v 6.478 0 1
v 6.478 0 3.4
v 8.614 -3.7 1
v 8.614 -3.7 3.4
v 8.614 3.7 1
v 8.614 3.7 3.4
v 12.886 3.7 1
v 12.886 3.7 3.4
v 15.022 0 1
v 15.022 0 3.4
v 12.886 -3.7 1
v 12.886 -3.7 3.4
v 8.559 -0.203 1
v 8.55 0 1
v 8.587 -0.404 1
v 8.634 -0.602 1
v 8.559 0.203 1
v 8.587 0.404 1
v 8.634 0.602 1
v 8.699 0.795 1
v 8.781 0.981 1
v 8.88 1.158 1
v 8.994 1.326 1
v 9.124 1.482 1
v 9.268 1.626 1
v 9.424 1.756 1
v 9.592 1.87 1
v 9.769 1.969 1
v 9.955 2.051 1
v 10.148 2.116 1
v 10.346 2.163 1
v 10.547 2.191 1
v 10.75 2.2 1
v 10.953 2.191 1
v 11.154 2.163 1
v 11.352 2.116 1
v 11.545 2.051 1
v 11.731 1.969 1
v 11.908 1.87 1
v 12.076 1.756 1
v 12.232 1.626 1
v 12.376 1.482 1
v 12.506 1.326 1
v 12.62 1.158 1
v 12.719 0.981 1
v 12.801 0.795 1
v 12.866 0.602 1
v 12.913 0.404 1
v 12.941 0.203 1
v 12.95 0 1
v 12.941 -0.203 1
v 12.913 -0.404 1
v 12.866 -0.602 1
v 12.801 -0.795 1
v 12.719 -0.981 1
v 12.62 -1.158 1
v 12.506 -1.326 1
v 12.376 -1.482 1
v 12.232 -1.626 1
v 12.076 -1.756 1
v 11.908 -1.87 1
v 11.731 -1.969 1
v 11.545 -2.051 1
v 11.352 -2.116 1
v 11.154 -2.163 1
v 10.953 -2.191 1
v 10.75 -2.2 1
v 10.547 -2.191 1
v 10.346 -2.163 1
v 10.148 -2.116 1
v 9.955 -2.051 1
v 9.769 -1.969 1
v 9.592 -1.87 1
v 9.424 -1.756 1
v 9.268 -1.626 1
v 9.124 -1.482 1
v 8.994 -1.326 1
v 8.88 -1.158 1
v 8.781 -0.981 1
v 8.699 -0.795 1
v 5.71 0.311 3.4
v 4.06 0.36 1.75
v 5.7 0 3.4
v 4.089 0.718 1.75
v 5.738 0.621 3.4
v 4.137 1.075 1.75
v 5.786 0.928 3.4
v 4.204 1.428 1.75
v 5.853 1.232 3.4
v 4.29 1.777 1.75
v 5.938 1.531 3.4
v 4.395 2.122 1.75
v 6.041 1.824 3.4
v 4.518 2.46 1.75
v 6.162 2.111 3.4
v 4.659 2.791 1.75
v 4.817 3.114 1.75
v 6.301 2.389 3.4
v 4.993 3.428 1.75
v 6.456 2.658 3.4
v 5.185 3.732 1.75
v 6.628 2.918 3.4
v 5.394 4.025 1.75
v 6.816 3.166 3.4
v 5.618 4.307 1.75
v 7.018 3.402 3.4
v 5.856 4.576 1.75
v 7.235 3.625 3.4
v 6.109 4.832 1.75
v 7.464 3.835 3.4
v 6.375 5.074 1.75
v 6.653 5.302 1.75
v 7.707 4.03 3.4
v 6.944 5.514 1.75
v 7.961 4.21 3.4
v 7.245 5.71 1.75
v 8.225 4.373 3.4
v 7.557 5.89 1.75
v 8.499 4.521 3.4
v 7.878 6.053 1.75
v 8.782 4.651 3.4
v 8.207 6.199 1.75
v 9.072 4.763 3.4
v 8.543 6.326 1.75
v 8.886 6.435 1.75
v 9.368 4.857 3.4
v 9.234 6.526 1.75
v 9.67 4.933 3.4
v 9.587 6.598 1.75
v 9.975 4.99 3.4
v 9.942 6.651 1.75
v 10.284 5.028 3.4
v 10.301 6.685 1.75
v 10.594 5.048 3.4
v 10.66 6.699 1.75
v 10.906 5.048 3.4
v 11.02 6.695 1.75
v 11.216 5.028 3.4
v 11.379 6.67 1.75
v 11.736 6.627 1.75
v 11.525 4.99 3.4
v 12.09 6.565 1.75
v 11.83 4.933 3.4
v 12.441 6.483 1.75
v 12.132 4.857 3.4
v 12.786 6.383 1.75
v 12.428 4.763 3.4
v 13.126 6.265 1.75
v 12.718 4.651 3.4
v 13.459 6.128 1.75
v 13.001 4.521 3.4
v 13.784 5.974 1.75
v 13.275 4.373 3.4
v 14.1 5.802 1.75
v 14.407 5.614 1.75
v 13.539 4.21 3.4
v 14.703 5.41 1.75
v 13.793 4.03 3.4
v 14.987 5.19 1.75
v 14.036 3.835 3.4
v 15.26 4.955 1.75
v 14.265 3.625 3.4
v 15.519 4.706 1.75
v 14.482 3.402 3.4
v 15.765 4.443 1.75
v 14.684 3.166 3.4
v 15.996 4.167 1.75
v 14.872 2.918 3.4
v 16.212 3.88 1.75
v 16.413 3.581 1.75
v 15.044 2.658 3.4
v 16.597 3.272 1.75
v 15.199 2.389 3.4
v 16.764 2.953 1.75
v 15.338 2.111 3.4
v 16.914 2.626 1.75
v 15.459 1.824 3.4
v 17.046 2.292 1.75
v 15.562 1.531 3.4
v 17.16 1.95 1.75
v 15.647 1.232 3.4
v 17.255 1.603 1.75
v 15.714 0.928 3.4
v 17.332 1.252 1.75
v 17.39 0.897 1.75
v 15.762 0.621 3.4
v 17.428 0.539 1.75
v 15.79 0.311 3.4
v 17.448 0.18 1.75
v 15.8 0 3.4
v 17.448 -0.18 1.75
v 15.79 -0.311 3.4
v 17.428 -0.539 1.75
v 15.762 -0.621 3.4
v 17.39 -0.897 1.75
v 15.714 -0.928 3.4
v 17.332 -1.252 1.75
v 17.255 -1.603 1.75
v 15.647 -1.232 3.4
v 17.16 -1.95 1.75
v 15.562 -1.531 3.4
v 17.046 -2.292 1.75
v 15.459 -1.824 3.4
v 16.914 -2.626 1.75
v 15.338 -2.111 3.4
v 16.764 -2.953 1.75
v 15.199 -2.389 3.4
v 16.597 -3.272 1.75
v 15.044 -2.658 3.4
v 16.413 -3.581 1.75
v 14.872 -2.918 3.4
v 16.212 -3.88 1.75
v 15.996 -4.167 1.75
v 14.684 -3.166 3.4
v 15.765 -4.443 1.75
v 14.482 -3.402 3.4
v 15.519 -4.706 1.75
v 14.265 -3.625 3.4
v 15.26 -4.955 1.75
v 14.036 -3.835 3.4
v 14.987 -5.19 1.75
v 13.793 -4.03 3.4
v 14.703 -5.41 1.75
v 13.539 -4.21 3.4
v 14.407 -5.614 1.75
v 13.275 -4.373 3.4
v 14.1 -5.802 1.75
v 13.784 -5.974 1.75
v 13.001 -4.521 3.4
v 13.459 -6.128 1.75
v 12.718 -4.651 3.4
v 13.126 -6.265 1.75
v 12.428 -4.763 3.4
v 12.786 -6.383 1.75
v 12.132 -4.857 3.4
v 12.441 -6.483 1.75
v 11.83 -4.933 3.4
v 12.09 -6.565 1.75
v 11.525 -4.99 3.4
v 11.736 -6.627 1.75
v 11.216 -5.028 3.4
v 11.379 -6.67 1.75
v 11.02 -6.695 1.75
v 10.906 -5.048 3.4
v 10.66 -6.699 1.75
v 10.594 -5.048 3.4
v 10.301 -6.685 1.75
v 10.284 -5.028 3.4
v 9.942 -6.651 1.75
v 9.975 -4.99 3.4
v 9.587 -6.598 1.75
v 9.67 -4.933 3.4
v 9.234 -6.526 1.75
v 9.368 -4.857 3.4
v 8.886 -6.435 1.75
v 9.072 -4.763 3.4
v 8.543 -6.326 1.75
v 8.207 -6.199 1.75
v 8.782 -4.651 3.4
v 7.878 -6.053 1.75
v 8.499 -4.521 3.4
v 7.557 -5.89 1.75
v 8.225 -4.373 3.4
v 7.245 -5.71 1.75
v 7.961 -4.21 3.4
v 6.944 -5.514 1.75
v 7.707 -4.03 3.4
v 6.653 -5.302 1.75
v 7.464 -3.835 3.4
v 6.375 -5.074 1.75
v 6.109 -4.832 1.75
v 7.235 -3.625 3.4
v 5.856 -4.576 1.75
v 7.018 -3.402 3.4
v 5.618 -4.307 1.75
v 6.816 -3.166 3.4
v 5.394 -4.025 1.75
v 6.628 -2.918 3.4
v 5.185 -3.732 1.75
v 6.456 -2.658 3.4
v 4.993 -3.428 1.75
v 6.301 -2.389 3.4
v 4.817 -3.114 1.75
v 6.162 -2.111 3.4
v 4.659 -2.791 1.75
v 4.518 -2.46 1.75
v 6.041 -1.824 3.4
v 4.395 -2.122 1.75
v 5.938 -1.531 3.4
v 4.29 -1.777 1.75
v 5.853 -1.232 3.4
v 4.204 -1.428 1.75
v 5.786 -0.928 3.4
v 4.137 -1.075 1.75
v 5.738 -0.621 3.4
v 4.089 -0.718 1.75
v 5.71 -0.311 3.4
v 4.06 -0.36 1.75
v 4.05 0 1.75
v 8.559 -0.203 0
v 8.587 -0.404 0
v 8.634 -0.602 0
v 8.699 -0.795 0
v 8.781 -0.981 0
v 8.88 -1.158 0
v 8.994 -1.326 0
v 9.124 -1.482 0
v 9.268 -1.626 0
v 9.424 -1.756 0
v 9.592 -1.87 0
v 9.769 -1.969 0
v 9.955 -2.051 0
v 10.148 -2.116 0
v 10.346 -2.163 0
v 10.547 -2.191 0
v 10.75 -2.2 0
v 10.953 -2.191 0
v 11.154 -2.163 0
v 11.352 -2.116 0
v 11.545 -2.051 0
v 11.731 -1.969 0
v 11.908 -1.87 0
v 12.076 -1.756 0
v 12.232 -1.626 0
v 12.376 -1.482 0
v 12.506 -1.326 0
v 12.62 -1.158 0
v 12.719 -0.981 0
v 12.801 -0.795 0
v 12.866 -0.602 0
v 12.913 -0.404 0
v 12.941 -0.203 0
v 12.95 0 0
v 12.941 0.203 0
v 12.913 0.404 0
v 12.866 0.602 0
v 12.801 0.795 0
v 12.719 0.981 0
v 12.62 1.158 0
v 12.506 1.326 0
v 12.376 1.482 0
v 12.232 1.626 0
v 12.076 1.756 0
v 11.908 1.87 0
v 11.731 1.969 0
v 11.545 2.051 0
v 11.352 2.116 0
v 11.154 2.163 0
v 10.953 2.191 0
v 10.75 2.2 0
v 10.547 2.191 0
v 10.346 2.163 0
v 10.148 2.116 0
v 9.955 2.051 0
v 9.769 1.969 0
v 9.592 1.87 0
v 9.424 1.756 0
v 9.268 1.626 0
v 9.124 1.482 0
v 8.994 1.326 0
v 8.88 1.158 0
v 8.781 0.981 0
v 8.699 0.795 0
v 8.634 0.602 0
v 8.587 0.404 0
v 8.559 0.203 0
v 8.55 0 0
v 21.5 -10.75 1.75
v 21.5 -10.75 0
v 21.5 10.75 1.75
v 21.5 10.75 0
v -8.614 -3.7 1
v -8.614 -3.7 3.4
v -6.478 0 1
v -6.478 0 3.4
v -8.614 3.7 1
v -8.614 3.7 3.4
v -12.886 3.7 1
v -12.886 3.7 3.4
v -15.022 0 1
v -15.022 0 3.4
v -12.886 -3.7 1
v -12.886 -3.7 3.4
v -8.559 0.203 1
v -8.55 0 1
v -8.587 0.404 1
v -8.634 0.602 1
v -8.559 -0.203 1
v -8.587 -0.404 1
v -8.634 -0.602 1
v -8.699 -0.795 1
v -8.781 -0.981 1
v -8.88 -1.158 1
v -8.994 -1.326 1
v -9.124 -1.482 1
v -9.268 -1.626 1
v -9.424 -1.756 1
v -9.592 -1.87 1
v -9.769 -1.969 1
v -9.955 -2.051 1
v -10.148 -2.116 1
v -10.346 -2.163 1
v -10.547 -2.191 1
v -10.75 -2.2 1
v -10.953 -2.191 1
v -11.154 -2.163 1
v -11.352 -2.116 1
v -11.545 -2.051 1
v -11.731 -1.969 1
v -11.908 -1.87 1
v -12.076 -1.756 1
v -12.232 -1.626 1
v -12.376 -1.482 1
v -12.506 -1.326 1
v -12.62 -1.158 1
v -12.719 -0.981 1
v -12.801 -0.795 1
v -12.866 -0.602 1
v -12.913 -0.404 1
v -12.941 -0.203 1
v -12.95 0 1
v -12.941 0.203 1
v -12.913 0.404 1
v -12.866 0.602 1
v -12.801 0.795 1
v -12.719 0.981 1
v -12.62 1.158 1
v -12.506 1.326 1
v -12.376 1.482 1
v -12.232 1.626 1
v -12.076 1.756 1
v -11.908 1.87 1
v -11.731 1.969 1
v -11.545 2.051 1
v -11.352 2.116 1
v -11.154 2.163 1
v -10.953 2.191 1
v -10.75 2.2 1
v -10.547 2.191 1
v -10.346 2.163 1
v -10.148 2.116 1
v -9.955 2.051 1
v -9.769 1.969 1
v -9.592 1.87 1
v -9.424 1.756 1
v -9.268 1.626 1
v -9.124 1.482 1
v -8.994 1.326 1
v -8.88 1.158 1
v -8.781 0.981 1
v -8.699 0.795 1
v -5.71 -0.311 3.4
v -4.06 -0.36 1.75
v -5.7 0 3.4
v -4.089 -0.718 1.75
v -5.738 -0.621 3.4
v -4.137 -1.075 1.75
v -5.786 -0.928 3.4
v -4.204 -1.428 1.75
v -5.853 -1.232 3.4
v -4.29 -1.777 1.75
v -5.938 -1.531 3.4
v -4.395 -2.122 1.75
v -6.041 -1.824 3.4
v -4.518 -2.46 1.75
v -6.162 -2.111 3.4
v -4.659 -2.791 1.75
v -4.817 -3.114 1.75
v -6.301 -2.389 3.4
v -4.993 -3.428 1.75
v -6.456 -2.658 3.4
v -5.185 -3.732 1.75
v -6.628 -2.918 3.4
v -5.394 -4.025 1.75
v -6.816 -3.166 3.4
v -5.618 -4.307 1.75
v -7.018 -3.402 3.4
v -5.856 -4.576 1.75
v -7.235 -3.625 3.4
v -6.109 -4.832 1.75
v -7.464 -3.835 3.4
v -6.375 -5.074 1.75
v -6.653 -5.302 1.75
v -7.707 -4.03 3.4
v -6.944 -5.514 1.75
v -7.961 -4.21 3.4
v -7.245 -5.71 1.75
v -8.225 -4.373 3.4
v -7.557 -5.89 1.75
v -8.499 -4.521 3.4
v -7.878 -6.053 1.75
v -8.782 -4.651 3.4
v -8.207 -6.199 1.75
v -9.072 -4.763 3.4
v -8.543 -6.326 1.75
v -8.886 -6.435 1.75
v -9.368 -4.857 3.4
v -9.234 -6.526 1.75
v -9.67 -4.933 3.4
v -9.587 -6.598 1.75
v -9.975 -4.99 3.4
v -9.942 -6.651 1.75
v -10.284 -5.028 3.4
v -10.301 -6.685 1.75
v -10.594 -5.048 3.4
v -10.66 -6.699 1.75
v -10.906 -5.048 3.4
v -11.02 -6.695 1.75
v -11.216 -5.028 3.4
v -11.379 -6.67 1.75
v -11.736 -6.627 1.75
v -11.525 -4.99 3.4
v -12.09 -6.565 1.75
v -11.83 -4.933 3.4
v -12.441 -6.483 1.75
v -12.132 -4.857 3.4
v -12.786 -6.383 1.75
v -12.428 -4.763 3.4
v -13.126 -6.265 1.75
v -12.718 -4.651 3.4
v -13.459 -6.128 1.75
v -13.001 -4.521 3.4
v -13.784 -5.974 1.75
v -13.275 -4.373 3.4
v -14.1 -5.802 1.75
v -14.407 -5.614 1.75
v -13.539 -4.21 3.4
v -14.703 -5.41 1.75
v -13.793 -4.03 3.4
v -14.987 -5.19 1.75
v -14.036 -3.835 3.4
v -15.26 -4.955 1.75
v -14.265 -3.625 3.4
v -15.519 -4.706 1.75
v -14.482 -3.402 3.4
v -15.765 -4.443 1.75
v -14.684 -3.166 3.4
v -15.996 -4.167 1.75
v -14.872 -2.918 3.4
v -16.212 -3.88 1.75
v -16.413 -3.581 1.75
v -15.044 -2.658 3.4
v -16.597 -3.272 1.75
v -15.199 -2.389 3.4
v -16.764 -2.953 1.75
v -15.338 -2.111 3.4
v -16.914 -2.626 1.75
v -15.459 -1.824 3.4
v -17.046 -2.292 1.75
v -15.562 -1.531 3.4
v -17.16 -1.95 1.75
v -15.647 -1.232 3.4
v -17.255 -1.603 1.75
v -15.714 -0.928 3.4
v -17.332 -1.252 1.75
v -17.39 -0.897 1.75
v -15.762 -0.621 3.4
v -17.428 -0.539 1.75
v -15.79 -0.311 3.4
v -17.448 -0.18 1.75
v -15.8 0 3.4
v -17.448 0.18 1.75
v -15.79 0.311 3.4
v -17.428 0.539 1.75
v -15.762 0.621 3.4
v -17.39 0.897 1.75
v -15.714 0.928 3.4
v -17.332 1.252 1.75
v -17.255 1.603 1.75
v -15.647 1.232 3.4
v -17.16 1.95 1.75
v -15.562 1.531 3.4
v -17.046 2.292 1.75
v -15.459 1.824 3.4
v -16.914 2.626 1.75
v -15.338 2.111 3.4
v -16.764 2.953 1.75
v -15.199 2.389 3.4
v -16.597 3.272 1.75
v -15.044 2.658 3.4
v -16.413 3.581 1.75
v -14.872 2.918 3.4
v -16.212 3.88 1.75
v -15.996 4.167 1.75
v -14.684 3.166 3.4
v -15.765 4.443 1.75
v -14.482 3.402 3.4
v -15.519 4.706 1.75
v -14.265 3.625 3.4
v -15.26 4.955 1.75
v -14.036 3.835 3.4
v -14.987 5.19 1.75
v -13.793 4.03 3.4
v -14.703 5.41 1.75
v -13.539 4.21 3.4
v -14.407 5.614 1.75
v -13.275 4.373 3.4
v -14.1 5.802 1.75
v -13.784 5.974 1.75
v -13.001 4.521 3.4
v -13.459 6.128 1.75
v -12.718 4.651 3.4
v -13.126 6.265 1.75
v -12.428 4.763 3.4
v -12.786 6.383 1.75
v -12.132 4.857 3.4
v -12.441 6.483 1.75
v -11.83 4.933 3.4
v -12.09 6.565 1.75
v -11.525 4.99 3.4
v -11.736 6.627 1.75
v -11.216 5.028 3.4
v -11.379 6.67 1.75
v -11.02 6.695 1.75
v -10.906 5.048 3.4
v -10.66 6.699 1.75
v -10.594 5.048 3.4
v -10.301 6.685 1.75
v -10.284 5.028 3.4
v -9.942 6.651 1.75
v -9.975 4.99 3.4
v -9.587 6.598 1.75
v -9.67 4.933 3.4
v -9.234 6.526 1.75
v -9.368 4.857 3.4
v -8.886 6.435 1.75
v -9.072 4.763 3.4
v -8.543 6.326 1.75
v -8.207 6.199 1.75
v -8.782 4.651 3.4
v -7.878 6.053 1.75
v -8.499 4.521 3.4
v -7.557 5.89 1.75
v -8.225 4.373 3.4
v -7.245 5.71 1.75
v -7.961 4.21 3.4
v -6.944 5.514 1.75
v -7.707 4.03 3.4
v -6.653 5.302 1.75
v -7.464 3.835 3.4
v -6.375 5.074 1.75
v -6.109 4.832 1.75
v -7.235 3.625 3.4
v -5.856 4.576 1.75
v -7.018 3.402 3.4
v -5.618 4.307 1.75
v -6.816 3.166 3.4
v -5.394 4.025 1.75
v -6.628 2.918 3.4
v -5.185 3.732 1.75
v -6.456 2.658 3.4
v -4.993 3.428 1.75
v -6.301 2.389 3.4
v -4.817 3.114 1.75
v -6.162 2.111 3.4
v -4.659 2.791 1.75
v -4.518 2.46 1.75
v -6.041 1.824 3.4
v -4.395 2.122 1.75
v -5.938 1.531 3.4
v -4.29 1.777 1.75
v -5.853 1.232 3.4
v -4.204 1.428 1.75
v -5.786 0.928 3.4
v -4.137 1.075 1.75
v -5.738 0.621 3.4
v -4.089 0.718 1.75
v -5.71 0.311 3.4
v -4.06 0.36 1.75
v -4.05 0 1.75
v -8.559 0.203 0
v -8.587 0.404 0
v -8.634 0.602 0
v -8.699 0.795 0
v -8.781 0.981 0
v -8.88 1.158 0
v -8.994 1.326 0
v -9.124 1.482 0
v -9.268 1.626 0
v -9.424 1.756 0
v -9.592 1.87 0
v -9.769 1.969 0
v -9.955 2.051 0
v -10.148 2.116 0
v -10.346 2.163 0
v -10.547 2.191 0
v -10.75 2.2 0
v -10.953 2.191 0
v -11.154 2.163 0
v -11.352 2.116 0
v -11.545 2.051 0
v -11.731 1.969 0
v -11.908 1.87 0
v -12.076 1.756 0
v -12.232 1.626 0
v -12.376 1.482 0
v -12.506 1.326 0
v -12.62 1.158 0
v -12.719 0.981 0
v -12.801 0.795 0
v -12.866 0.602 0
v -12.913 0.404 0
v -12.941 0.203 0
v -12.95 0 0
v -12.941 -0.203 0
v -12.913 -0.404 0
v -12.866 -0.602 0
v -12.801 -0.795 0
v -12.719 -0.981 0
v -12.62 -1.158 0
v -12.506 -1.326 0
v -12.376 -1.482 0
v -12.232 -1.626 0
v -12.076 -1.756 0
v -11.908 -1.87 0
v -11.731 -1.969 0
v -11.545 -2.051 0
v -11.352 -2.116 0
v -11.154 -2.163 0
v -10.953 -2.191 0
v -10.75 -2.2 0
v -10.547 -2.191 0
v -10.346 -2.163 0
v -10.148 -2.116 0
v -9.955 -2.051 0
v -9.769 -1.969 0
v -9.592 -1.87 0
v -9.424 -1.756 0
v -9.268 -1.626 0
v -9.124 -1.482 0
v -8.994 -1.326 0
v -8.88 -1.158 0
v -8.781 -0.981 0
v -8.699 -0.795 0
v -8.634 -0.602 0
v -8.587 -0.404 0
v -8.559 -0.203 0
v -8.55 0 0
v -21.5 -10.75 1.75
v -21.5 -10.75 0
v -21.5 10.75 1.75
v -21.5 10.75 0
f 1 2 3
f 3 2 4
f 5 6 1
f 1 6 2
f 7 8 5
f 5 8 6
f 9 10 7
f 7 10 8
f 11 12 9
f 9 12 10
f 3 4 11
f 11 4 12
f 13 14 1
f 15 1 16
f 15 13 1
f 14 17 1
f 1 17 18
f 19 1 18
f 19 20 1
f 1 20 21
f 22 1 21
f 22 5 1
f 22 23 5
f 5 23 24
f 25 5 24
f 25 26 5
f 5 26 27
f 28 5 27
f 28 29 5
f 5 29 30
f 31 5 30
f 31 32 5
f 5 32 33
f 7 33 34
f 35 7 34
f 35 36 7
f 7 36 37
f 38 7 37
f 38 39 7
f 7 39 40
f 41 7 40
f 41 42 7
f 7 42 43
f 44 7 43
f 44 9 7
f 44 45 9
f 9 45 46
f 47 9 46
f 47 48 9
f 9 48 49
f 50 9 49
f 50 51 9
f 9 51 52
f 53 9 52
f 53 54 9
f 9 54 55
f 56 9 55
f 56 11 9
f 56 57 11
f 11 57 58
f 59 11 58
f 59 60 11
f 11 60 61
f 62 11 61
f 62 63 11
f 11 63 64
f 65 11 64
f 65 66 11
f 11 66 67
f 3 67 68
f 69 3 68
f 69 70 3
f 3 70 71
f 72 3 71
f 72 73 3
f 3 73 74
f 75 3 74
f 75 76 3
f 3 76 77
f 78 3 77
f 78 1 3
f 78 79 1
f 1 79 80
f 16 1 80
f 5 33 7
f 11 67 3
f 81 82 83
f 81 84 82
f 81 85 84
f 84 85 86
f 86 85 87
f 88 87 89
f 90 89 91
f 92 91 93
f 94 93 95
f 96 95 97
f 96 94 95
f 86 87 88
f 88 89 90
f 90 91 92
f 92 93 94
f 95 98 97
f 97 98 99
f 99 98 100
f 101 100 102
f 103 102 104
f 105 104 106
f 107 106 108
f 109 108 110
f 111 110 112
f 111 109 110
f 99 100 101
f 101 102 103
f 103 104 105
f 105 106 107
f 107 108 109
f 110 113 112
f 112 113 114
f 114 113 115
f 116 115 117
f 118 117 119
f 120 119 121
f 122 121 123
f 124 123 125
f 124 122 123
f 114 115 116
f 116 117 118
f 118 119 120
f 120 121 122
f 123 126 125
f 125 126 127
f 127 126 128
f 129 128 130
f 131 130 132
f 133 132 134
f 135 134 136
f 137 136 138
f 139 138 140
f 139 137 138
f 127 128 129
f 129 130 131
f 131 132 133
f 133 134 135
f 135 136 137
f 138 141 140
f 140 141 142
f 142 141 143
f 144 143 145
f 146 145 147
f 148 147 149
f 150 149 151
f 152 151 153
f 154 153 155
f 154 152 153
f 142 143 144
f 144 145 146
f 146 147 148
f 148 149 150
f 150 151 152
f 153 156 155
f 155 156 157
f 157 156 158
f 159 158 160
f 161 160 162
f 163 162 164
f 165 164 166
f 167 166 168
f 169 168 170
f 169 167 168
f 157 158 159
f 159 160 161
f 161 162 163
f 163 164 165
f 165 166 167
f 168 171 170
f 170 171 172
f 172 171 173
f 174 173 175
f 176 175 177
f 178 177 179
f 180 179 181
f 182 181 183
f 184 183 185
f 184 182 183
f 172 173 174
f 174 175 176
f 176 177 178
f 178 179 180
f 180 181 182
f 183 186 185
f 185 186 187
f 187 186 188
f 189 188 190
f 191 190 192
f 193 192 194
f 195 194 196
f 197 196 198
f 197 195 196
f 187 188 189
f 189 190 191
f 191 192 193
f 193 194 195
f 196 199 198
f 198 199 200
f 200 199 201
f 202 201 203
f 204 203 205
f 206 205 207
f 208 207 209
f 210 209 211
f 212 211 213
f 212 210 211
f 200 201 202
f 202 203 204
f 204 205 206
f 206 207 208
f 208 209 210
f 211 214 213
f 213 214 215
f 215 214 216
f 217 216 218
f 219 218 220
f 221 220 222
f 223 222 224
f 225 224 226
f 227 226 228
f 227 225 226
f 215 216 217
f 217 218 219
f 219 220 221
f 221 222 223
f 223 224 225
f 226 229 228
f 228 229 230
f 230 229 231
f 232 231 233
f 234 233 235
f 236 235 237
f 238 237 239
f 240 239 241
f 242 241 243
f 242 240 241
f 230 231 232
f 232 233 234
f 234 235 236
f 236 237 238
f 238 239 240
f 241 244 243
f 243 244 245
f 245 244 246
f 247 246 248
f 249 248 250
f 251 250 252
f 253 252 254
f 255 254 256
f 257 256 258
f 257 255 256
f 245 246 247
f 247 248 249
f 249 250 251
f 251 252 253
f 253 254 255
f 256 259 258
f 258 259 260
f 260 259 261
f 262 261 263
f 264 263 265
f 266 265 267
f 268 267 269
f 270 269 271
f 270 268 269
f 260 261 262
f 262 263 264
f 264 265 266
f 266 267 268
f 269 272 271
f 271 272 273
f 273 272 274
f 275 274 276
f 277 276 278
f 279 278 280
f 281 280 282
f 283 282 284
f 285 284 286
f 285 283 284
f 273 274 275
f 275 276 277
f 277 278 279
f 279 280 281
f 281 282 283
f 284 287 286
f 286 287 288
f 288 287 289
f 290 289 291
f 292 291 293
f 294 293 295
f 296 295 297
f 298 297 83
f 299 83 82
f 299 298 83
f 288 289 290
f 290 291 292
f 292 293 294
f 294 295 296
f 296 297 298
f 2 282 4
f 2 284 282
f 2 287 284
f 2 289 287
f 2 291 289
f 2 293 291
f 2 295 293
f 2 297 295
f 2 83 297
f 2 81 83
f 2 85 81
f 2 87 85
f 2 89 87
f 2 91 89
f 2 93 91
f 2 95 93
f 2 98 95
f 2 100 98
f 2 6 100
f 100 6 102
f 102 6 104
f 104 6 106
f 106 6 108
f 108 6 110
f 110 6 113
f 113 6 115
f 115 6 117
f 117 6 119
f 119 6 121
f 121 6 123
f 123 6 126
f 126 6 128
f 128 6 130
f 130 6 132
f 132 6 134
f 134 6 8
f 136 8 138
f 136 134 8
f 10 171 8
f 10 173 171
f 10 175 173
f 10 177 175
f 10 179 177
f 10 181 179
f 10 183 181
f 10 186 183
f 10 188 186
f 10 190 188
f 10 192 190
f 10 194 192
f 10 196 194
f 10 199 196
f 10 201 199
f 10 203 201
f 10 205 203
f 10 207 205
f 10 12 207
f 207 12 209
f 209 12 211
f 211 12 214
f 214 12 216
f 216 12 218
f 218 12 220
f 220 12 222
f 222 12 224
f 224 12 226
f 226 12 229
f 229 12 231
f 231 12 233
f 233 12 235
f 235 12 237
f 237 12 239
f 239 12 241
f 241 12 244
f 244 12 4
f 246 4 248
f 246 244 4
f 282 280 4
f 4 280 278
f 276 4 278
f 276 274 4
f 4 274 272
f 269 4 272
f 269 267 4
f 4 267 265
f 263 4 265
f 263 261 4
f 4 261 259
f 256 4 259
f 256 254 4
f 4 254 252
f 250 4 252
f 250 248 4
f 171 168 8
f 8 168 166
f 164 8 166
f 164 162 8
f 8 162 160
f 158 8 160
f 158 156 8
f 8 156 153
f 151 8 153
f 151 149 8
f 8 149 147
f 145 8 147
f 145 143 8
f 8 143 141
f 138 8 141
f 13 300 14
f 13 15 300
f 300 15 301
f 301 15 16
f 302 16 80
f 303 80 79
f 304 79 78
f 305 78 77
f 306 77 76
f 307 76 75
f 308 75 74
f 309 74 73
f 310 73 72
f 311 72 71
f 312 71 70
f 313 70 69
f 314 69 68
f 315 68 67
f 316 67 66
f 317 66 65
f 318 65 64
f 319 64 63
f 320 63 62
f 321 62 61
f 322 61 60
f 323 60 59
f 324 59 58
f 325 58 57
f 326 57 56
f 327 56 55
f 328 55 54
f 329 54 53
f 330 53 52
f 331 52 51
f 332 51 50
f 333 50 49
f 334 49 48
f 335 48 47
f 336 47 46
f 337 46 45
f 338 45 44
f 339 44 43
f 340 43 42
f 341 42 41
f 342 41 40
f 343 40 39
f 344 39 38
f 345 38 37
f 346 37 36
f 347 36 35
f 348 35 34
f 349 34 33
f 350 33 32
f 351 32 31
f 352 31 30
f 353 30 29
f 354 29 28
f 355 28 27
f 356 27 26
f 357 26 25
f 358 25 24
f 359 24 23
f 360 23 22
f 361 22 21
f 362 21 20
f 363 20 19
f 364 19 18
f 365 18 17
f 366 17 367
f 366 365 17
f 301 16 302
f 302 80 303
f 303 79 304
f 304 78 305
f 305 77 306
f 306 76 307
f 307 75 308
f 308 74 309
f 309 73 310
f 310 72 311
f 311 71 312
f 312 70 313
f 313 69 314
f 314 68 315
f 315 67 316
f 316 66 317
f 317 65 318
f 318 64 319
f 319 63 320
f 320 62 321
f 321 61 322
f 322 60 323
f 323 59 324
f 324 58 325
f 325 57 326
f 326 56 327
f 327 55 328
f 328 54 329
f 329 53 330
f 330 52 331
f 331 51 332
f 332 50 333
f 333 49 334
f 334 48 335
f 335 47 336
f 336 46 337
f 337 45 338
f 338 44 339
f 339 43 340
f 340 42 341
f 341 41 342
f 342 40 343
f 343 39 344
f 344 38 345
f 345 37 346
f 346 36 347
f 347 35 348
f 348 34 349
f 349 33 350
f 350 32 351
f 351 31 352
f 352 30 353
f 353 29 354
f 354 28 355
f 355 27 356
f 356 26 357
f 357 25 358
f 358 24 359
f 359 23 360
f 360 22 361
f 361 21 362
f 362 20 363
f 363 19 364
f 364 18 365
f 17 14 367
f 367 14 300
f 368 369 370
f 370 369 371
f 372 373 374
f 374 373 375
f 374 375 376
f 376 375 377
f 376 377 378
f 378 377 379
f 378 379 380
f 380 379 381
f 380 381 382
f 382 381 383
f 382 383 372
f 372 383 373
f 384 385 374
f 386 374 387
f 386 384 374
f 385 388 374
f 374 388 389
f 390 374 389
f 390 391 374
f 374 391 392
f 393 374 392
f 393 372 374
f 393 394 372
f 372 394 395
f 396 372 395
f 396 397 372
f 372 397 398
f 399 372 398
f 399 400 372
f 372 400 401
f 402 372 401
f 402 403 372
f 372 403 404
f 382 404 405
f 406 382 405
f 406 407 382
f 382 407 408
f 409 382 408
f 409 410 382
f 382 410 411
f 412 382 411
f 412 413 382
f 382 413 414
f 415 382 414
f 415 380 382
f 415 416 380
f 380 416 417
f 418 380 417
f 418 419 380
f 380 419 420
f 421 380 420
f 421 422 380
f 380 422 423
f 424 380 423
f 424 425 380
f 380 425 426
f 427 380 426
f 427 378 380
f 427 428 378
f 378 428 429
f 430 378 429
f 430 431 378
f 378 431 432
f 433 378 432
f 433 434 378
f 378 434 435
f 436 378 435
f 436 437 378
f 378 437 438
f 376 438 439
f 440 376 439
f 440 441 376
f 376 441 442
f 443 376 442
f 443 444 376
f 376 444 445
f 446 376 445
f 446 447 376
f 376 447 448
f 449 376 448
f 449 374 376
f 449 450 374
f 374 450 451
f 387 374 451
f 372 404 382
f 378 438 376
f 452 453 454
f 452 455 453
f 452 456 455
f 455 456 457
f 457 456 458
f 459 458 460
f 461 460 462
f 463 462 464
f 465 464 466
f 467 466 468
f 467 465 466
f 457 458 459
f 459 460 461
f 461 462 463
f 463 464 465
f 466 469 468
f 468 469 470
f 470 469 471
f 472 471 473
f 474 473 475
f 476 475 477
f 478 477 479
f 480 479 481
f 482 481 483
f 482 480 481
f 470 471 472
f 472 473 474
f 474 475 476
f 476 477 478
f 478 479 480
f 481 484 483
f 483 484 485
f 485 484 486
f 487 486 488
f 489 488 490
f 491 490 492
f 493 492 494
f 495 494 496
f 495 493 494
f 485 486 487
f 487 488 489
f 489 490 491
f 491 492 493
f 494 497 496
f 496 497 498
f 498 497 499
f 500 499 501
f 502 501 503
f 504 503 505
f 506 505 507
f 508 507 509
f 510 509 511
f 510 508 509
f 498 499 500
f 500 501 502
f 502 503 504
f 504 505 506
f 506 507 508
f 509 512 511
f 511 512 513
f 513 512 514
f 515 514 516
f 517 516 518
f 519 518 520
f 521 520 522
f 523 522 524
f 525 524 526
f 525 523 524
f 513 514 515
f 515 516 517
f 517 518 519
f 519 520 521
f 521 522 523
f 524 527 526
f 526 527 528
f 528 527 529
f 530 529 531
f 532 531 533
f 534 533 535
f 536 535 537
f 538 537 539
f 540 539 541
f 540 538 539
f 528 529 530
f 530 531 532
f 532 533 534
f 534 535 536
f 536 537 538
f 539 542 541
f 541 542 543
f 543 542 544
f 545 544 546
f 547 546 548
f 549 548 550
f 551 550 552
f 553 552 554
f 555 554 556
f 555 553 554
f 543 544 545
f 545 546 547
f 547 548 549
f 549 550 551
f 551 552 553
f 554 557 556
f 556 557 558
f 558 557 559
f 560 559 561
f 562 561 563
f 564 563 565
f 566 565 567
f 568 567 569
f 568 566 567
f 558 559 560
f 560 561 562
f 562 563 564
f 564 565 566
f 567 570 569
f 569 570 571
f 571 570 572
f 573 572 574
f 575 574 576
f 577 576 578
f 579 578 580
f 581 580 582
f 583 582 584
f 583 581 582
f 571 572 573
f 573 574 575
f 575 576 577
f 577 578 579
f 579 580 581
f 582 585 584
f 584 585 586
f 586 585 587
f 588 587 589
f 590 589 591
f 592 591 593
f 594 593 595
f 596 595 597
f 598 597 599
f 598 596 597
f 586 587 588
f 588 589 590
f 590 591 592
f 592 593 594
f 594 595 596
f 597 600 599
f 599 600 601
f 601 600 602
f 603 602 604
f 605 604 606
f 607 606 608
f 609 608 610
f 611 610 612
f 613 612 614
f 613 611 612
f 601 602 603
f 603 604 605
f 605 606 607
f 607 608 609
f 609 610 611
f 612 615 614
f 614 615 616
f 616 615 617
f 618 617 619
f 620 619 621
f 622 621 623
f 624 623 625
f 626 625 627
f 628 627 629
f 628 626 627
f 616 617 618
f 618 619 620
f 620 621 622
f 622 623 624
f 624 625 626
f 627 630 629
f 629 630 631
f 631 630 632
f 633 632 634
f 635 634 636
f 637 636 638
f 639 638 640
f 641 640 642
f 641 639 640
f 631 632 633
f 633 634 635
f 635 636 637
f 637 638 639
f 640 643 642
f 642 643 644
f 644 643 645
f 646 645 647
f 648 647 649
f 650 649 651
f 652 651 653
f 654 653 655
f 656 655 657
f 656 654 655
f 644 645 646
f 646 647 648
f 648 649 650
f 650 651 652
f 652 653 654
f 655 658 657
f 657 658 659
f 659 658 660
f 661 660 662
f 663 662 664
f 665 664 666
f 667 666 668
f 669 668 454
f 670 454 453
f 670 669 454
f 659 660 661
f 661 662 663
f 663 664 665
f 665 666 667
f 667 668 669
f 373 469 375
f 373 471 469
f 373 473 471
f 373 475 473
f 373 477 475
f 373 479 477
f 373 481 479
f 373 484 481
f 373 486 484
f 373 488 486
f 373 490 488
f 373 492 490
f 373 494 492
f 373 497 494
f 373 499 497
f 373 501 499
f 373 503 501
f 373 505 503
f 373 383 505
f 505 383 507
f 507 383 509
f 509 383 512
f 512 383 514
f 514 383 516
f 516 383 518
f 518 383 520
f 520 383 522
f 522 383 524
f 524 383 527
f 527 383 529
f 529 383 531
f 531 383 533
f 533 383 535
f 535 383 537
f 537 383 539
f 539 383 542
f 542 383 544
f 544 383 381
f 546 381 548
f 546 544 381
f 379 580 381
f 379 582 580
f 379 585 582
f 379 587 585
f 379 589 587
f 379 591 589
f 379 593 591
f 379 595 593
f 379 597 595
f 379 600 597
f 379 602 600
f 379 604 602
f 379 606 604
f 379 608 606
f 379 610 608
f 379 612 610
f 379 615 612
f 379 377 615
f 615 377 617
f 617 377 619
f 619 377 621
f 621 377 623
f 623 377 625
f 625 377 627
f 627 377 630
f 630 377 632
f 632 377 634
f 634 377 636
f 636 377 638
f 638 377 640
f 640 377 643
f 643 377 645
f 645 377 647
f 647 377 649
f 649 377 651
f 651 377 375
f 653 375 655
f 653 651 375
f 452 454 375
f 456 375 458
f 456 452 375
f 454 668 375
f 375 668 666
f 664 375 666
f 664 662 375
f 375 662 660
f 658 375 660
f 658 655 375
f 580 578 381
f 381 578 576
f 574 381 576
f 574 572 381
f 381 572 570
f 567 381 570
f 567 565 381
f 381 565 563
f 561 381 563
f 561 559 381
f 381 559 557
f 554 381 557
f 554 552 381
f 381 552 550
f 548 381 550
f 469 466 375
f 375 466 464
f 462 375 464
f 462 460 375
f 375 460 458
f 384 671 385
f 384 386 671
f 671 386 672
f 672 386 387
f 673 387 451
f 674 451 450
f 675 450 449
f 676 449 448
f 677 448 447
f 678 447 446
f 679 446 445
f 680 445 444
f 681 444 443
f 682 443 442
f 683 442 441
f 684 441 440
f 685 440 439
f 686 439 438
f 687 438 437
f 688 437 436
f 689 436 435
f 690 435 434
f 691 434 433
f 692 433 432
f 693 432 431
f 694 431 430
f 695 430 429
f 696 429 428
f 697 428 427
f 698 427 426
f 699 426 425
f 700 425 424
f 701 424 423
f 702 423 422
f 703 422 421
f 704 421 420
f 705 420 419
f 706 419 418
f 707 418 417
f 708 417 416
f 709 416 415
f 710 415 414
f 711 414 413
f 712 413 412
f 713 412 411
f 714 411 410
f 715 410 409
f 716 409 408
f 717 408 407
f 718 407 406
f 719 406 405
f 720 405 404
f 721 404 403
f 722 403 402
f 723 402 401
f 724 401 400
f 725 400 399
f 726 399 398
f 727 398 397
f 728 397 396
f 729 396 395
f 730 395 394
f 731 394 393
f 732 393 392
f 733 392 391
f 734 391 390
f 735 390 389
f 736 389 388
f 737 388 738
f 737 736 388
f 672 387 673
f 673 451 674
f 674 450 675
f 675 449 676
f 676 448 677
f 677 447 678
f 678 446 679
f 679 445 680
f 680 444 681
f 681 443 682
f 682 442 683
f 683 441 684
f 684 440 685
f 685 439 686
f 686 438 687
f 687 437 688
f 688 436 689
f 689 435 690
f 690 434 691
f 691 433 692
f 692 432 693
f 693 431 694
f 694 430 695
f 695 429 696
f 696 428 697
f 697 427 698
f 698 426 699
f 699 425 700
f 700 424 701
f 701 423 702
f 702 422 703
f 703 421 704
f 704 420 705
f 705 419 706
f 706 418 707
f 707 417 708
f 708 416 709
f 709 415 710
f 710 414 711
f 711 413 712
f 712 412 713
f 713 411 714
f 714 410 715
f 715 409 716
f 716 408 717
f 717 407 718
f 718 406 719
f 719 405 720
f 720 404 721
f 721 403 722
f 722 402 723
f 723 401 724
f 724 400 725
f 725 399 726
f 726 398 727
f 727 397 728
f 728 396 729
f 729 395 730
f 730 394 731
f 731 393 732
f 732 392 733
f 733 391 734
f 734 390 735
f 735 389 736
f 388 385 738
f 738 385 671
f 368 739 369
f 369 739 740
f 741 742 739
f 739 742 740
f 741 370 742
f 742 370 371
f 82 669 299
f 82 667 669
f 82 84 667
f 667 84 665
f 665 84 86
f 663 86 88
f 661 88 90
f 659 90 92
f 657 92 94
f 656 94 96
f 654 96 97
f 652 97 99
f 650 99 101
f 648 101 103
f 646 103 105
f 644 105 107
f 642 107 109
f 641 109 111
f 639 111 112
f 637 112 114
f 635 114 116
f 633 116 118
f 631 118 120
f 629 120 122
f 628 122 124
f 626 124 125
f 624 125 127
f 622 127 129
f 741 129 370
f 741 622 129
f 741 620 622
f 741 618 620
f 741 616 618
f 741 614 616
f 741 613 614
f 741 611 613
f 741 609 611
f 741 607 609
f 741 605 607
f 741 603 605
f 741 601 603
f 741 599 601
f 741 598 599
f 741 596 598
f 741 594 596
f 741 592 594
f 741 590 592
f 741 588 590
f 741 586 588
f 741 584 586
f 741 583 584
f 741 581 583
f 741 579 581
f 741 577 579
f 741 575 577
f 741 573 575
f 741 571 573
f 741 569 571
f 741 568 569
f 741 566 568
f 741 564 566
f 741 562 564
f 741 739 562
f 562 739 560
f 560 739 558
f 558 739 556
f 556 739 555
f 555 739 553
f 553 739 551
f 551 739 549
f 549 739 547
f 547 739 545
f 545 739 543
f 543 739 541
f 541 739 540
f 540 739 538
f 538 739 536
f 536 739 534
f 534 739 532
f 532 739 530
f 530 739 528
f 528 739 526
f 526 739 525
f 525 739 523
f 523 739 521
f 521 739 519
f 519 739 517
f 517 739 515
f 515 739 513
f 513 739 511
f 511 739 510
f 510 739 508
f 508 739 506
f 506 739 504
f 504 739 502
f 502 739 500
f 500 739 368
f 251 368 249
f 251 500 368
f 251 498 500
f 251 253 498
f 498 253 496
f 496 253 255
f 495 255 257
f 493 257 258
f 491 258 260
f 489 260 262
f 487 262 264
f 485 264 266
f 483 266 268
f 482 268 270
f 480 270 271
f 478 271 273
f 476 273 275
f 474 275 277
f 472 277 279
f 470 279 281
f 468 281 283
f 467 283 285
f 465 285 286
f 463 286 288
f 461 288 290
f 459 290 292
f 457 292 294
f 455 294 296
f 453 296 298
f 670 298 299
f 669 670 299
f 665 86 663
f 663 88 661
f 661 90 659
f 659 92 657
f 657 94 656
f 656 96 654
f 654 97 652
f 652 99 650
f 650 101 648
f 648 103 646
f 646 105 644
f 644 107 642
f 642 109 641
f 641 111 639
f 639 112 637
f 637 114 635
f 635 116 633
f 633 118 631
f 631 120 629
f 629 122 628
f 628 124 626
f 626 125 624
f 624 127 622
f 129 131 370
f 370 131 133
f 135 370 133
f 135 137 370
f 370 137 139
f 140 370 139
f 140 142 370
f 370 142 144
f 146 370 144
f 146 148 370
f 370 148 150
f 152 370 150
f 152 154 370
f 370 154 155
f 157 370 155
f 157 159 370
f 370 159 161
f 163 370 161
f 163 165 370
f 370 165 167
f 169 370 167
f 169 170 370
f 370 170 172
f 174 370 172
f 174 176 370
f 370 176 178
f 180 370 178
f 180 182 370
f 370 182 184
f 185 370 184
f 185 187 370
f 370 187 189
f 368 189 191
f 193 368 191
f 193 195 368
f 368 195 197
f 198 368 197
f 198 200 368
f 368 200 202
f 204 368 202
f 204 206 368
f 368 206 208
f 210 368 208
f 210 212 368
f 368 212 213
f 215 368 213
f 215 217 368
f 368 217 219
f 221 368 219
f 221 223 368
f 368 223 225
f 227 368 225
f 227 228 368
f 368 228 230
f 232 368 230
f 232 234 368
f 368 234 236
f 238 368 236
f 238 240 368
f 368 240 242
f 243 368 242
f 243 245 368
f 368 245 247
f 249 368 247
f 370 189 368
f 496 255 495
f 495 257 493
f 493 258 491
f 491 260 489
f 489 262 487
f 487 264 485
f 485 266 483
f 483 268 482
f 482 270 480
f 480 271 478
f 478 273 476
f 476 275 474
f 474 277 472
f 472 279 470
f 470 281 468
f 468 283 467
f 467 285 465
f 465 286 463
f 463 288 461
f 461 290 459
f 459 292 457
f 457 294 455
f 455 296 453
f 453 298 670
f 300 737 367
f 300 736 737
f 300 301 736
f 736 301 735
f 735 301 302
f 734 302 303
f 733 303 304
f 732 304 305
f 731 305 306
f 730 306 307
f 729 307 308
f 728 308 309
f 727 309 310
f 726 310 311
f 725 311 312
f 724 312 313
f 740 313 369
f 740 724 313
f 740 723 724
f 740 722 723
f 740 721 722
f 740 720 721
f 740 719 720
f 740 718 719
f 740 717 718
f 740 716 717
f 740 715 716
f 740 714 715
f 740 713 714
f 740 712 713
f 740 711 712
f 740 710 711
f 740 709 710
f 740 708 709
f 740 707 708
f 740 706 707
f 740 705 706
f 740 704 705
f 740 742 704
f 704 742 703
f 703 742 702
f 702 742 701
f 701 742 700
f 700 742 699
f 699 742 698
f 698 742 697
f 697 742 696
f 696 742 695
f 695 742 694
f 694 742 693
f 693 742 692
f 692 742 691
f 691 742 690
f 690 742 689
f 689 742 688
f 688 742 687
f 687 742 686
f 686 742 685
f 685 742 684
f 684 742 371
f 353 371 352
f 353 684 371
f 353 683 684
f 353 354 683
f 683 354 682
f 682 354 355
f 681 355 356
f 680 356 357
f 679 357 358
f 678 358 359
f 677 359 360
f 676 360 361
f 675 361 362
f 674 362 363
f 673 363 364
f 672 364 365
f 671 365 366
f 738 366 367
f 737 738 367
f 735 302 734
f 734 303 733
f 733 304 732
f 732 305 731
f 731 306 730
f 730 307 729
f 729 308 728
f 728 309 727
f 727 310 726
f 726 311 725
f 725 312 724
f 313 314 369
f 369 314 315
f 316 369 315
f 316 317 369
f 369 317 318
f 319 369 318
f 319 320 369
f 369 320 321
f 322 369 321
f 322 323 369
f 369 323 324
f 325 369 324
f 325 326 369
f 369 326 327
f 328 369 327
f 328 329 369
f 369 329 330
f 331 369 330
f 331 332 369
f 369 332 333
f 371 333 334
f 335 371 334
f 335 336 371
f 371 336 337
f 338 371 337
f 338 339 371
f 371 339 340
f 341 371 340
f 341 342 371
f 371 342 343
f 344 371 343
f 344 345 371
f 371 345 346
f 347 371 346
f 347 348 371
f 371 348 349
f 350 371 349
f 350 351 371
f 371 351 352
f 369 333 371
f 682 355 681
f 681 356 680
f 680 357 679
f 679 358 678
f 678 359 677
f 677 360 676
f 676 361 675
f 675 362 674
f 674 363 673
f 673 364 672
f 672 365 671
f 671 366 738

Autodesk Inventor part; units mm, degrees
ref_plane "YZ Plane" through (0, 0, 0) normal (1, 0, 0) x (0, 1, 0)
ref_plane "XZ Plane" through (0, 0, 0) normal (0, 1, 0) x (-1, 0, 0)
ref_plane "XY Plane" through (0, 0, 0) normal (0, 0, 1) x (1, 0, 0)
sketch "Sketch4" plane through (0, 0, 0) normal (0, 0, 1) x (1, 0, 0)
  line L0 (-21.5, 10.75) -> (0, 10.75)
  line L1 (0, 10.75) -> (0, -10.75)
  line L2 (0, -10.75) -> (-21.5, -10.75)
  line L3 (-21.5, -10.75) -> (-21.5, 10.75)
  circle A0 centre (-10.75, 0) radius 2.2
  point P0 (0, 0)
  point P1 (-21.5, 0)
  point P2 (0, 0)
  point P3 (-10.75, 10.75)
  dimension "d12" = 21.5
  dimension "d13" = 21.5
  dimension "d14" = 4.4
extrude "Extrusion4" add sketch "Sketch4" along normal blind 1.75
sketch "Sketch5" plane through (0, 0, 1.75) normal (0, 0, 1) x (1, 0, 0)
  circle A0 centre (-10.75, 0) radius 2.2 projected
  circle A1 centre (-10.75, 0) radius 6.7
  point P0 (0, 0)
  dimension "d17" = 13.4
extrude "Extrusion5" add sketch "Sketch5" along normal blind 1.65
draft "FaceDraft2" angle 45 pull direction (0, 0, 1) faces at (-4.1368, -1.0748, 2.85) fixed edges at (-17.45, 0, 1.75)
sketch "Sketch6" plane through (-10.75, 0, 3.4) normal (0, 0, 1) x (1, 0, 0)
  circle A0 centre (0, 0) radius 2.2 projected
  circle A1 centre (0, 0) radius 5.05 projected
  line L0 (2.1362, -3.7) -> (-2.1362, -3.7)
  line L1 (-2.1362, -3.7) -> (-4.2724, 0)
  line L2 (-4.2724, 0) -> (-2.1362, 3.7)
  line L3 (-2.1362, 3.7) -> (2.1362, 3.7)
  line L4 (2.1362, 3.7) -> (4.2724, 0)
  line L5 (4.2724, 0) -> (2.1362, -3.7)
  line L6 (-10.75, 10.75) -> (10.75, 10.75) projected
  point P0 (10.75, 0)
  dimension "d21" = 7.4
extrude "Extrusion6" cut sketch "Sketch6" against normal blind 2.4 contours L0 L1 L2 L3 L4 L5
mirror "Mirror1" about plane through (0, 10.75, 0) normal (1, 0, 0) of "Extrusion4", "FaceDraft2", "Extrusion5", "Extrusion6"
properties part number "bracket_plastictube"
